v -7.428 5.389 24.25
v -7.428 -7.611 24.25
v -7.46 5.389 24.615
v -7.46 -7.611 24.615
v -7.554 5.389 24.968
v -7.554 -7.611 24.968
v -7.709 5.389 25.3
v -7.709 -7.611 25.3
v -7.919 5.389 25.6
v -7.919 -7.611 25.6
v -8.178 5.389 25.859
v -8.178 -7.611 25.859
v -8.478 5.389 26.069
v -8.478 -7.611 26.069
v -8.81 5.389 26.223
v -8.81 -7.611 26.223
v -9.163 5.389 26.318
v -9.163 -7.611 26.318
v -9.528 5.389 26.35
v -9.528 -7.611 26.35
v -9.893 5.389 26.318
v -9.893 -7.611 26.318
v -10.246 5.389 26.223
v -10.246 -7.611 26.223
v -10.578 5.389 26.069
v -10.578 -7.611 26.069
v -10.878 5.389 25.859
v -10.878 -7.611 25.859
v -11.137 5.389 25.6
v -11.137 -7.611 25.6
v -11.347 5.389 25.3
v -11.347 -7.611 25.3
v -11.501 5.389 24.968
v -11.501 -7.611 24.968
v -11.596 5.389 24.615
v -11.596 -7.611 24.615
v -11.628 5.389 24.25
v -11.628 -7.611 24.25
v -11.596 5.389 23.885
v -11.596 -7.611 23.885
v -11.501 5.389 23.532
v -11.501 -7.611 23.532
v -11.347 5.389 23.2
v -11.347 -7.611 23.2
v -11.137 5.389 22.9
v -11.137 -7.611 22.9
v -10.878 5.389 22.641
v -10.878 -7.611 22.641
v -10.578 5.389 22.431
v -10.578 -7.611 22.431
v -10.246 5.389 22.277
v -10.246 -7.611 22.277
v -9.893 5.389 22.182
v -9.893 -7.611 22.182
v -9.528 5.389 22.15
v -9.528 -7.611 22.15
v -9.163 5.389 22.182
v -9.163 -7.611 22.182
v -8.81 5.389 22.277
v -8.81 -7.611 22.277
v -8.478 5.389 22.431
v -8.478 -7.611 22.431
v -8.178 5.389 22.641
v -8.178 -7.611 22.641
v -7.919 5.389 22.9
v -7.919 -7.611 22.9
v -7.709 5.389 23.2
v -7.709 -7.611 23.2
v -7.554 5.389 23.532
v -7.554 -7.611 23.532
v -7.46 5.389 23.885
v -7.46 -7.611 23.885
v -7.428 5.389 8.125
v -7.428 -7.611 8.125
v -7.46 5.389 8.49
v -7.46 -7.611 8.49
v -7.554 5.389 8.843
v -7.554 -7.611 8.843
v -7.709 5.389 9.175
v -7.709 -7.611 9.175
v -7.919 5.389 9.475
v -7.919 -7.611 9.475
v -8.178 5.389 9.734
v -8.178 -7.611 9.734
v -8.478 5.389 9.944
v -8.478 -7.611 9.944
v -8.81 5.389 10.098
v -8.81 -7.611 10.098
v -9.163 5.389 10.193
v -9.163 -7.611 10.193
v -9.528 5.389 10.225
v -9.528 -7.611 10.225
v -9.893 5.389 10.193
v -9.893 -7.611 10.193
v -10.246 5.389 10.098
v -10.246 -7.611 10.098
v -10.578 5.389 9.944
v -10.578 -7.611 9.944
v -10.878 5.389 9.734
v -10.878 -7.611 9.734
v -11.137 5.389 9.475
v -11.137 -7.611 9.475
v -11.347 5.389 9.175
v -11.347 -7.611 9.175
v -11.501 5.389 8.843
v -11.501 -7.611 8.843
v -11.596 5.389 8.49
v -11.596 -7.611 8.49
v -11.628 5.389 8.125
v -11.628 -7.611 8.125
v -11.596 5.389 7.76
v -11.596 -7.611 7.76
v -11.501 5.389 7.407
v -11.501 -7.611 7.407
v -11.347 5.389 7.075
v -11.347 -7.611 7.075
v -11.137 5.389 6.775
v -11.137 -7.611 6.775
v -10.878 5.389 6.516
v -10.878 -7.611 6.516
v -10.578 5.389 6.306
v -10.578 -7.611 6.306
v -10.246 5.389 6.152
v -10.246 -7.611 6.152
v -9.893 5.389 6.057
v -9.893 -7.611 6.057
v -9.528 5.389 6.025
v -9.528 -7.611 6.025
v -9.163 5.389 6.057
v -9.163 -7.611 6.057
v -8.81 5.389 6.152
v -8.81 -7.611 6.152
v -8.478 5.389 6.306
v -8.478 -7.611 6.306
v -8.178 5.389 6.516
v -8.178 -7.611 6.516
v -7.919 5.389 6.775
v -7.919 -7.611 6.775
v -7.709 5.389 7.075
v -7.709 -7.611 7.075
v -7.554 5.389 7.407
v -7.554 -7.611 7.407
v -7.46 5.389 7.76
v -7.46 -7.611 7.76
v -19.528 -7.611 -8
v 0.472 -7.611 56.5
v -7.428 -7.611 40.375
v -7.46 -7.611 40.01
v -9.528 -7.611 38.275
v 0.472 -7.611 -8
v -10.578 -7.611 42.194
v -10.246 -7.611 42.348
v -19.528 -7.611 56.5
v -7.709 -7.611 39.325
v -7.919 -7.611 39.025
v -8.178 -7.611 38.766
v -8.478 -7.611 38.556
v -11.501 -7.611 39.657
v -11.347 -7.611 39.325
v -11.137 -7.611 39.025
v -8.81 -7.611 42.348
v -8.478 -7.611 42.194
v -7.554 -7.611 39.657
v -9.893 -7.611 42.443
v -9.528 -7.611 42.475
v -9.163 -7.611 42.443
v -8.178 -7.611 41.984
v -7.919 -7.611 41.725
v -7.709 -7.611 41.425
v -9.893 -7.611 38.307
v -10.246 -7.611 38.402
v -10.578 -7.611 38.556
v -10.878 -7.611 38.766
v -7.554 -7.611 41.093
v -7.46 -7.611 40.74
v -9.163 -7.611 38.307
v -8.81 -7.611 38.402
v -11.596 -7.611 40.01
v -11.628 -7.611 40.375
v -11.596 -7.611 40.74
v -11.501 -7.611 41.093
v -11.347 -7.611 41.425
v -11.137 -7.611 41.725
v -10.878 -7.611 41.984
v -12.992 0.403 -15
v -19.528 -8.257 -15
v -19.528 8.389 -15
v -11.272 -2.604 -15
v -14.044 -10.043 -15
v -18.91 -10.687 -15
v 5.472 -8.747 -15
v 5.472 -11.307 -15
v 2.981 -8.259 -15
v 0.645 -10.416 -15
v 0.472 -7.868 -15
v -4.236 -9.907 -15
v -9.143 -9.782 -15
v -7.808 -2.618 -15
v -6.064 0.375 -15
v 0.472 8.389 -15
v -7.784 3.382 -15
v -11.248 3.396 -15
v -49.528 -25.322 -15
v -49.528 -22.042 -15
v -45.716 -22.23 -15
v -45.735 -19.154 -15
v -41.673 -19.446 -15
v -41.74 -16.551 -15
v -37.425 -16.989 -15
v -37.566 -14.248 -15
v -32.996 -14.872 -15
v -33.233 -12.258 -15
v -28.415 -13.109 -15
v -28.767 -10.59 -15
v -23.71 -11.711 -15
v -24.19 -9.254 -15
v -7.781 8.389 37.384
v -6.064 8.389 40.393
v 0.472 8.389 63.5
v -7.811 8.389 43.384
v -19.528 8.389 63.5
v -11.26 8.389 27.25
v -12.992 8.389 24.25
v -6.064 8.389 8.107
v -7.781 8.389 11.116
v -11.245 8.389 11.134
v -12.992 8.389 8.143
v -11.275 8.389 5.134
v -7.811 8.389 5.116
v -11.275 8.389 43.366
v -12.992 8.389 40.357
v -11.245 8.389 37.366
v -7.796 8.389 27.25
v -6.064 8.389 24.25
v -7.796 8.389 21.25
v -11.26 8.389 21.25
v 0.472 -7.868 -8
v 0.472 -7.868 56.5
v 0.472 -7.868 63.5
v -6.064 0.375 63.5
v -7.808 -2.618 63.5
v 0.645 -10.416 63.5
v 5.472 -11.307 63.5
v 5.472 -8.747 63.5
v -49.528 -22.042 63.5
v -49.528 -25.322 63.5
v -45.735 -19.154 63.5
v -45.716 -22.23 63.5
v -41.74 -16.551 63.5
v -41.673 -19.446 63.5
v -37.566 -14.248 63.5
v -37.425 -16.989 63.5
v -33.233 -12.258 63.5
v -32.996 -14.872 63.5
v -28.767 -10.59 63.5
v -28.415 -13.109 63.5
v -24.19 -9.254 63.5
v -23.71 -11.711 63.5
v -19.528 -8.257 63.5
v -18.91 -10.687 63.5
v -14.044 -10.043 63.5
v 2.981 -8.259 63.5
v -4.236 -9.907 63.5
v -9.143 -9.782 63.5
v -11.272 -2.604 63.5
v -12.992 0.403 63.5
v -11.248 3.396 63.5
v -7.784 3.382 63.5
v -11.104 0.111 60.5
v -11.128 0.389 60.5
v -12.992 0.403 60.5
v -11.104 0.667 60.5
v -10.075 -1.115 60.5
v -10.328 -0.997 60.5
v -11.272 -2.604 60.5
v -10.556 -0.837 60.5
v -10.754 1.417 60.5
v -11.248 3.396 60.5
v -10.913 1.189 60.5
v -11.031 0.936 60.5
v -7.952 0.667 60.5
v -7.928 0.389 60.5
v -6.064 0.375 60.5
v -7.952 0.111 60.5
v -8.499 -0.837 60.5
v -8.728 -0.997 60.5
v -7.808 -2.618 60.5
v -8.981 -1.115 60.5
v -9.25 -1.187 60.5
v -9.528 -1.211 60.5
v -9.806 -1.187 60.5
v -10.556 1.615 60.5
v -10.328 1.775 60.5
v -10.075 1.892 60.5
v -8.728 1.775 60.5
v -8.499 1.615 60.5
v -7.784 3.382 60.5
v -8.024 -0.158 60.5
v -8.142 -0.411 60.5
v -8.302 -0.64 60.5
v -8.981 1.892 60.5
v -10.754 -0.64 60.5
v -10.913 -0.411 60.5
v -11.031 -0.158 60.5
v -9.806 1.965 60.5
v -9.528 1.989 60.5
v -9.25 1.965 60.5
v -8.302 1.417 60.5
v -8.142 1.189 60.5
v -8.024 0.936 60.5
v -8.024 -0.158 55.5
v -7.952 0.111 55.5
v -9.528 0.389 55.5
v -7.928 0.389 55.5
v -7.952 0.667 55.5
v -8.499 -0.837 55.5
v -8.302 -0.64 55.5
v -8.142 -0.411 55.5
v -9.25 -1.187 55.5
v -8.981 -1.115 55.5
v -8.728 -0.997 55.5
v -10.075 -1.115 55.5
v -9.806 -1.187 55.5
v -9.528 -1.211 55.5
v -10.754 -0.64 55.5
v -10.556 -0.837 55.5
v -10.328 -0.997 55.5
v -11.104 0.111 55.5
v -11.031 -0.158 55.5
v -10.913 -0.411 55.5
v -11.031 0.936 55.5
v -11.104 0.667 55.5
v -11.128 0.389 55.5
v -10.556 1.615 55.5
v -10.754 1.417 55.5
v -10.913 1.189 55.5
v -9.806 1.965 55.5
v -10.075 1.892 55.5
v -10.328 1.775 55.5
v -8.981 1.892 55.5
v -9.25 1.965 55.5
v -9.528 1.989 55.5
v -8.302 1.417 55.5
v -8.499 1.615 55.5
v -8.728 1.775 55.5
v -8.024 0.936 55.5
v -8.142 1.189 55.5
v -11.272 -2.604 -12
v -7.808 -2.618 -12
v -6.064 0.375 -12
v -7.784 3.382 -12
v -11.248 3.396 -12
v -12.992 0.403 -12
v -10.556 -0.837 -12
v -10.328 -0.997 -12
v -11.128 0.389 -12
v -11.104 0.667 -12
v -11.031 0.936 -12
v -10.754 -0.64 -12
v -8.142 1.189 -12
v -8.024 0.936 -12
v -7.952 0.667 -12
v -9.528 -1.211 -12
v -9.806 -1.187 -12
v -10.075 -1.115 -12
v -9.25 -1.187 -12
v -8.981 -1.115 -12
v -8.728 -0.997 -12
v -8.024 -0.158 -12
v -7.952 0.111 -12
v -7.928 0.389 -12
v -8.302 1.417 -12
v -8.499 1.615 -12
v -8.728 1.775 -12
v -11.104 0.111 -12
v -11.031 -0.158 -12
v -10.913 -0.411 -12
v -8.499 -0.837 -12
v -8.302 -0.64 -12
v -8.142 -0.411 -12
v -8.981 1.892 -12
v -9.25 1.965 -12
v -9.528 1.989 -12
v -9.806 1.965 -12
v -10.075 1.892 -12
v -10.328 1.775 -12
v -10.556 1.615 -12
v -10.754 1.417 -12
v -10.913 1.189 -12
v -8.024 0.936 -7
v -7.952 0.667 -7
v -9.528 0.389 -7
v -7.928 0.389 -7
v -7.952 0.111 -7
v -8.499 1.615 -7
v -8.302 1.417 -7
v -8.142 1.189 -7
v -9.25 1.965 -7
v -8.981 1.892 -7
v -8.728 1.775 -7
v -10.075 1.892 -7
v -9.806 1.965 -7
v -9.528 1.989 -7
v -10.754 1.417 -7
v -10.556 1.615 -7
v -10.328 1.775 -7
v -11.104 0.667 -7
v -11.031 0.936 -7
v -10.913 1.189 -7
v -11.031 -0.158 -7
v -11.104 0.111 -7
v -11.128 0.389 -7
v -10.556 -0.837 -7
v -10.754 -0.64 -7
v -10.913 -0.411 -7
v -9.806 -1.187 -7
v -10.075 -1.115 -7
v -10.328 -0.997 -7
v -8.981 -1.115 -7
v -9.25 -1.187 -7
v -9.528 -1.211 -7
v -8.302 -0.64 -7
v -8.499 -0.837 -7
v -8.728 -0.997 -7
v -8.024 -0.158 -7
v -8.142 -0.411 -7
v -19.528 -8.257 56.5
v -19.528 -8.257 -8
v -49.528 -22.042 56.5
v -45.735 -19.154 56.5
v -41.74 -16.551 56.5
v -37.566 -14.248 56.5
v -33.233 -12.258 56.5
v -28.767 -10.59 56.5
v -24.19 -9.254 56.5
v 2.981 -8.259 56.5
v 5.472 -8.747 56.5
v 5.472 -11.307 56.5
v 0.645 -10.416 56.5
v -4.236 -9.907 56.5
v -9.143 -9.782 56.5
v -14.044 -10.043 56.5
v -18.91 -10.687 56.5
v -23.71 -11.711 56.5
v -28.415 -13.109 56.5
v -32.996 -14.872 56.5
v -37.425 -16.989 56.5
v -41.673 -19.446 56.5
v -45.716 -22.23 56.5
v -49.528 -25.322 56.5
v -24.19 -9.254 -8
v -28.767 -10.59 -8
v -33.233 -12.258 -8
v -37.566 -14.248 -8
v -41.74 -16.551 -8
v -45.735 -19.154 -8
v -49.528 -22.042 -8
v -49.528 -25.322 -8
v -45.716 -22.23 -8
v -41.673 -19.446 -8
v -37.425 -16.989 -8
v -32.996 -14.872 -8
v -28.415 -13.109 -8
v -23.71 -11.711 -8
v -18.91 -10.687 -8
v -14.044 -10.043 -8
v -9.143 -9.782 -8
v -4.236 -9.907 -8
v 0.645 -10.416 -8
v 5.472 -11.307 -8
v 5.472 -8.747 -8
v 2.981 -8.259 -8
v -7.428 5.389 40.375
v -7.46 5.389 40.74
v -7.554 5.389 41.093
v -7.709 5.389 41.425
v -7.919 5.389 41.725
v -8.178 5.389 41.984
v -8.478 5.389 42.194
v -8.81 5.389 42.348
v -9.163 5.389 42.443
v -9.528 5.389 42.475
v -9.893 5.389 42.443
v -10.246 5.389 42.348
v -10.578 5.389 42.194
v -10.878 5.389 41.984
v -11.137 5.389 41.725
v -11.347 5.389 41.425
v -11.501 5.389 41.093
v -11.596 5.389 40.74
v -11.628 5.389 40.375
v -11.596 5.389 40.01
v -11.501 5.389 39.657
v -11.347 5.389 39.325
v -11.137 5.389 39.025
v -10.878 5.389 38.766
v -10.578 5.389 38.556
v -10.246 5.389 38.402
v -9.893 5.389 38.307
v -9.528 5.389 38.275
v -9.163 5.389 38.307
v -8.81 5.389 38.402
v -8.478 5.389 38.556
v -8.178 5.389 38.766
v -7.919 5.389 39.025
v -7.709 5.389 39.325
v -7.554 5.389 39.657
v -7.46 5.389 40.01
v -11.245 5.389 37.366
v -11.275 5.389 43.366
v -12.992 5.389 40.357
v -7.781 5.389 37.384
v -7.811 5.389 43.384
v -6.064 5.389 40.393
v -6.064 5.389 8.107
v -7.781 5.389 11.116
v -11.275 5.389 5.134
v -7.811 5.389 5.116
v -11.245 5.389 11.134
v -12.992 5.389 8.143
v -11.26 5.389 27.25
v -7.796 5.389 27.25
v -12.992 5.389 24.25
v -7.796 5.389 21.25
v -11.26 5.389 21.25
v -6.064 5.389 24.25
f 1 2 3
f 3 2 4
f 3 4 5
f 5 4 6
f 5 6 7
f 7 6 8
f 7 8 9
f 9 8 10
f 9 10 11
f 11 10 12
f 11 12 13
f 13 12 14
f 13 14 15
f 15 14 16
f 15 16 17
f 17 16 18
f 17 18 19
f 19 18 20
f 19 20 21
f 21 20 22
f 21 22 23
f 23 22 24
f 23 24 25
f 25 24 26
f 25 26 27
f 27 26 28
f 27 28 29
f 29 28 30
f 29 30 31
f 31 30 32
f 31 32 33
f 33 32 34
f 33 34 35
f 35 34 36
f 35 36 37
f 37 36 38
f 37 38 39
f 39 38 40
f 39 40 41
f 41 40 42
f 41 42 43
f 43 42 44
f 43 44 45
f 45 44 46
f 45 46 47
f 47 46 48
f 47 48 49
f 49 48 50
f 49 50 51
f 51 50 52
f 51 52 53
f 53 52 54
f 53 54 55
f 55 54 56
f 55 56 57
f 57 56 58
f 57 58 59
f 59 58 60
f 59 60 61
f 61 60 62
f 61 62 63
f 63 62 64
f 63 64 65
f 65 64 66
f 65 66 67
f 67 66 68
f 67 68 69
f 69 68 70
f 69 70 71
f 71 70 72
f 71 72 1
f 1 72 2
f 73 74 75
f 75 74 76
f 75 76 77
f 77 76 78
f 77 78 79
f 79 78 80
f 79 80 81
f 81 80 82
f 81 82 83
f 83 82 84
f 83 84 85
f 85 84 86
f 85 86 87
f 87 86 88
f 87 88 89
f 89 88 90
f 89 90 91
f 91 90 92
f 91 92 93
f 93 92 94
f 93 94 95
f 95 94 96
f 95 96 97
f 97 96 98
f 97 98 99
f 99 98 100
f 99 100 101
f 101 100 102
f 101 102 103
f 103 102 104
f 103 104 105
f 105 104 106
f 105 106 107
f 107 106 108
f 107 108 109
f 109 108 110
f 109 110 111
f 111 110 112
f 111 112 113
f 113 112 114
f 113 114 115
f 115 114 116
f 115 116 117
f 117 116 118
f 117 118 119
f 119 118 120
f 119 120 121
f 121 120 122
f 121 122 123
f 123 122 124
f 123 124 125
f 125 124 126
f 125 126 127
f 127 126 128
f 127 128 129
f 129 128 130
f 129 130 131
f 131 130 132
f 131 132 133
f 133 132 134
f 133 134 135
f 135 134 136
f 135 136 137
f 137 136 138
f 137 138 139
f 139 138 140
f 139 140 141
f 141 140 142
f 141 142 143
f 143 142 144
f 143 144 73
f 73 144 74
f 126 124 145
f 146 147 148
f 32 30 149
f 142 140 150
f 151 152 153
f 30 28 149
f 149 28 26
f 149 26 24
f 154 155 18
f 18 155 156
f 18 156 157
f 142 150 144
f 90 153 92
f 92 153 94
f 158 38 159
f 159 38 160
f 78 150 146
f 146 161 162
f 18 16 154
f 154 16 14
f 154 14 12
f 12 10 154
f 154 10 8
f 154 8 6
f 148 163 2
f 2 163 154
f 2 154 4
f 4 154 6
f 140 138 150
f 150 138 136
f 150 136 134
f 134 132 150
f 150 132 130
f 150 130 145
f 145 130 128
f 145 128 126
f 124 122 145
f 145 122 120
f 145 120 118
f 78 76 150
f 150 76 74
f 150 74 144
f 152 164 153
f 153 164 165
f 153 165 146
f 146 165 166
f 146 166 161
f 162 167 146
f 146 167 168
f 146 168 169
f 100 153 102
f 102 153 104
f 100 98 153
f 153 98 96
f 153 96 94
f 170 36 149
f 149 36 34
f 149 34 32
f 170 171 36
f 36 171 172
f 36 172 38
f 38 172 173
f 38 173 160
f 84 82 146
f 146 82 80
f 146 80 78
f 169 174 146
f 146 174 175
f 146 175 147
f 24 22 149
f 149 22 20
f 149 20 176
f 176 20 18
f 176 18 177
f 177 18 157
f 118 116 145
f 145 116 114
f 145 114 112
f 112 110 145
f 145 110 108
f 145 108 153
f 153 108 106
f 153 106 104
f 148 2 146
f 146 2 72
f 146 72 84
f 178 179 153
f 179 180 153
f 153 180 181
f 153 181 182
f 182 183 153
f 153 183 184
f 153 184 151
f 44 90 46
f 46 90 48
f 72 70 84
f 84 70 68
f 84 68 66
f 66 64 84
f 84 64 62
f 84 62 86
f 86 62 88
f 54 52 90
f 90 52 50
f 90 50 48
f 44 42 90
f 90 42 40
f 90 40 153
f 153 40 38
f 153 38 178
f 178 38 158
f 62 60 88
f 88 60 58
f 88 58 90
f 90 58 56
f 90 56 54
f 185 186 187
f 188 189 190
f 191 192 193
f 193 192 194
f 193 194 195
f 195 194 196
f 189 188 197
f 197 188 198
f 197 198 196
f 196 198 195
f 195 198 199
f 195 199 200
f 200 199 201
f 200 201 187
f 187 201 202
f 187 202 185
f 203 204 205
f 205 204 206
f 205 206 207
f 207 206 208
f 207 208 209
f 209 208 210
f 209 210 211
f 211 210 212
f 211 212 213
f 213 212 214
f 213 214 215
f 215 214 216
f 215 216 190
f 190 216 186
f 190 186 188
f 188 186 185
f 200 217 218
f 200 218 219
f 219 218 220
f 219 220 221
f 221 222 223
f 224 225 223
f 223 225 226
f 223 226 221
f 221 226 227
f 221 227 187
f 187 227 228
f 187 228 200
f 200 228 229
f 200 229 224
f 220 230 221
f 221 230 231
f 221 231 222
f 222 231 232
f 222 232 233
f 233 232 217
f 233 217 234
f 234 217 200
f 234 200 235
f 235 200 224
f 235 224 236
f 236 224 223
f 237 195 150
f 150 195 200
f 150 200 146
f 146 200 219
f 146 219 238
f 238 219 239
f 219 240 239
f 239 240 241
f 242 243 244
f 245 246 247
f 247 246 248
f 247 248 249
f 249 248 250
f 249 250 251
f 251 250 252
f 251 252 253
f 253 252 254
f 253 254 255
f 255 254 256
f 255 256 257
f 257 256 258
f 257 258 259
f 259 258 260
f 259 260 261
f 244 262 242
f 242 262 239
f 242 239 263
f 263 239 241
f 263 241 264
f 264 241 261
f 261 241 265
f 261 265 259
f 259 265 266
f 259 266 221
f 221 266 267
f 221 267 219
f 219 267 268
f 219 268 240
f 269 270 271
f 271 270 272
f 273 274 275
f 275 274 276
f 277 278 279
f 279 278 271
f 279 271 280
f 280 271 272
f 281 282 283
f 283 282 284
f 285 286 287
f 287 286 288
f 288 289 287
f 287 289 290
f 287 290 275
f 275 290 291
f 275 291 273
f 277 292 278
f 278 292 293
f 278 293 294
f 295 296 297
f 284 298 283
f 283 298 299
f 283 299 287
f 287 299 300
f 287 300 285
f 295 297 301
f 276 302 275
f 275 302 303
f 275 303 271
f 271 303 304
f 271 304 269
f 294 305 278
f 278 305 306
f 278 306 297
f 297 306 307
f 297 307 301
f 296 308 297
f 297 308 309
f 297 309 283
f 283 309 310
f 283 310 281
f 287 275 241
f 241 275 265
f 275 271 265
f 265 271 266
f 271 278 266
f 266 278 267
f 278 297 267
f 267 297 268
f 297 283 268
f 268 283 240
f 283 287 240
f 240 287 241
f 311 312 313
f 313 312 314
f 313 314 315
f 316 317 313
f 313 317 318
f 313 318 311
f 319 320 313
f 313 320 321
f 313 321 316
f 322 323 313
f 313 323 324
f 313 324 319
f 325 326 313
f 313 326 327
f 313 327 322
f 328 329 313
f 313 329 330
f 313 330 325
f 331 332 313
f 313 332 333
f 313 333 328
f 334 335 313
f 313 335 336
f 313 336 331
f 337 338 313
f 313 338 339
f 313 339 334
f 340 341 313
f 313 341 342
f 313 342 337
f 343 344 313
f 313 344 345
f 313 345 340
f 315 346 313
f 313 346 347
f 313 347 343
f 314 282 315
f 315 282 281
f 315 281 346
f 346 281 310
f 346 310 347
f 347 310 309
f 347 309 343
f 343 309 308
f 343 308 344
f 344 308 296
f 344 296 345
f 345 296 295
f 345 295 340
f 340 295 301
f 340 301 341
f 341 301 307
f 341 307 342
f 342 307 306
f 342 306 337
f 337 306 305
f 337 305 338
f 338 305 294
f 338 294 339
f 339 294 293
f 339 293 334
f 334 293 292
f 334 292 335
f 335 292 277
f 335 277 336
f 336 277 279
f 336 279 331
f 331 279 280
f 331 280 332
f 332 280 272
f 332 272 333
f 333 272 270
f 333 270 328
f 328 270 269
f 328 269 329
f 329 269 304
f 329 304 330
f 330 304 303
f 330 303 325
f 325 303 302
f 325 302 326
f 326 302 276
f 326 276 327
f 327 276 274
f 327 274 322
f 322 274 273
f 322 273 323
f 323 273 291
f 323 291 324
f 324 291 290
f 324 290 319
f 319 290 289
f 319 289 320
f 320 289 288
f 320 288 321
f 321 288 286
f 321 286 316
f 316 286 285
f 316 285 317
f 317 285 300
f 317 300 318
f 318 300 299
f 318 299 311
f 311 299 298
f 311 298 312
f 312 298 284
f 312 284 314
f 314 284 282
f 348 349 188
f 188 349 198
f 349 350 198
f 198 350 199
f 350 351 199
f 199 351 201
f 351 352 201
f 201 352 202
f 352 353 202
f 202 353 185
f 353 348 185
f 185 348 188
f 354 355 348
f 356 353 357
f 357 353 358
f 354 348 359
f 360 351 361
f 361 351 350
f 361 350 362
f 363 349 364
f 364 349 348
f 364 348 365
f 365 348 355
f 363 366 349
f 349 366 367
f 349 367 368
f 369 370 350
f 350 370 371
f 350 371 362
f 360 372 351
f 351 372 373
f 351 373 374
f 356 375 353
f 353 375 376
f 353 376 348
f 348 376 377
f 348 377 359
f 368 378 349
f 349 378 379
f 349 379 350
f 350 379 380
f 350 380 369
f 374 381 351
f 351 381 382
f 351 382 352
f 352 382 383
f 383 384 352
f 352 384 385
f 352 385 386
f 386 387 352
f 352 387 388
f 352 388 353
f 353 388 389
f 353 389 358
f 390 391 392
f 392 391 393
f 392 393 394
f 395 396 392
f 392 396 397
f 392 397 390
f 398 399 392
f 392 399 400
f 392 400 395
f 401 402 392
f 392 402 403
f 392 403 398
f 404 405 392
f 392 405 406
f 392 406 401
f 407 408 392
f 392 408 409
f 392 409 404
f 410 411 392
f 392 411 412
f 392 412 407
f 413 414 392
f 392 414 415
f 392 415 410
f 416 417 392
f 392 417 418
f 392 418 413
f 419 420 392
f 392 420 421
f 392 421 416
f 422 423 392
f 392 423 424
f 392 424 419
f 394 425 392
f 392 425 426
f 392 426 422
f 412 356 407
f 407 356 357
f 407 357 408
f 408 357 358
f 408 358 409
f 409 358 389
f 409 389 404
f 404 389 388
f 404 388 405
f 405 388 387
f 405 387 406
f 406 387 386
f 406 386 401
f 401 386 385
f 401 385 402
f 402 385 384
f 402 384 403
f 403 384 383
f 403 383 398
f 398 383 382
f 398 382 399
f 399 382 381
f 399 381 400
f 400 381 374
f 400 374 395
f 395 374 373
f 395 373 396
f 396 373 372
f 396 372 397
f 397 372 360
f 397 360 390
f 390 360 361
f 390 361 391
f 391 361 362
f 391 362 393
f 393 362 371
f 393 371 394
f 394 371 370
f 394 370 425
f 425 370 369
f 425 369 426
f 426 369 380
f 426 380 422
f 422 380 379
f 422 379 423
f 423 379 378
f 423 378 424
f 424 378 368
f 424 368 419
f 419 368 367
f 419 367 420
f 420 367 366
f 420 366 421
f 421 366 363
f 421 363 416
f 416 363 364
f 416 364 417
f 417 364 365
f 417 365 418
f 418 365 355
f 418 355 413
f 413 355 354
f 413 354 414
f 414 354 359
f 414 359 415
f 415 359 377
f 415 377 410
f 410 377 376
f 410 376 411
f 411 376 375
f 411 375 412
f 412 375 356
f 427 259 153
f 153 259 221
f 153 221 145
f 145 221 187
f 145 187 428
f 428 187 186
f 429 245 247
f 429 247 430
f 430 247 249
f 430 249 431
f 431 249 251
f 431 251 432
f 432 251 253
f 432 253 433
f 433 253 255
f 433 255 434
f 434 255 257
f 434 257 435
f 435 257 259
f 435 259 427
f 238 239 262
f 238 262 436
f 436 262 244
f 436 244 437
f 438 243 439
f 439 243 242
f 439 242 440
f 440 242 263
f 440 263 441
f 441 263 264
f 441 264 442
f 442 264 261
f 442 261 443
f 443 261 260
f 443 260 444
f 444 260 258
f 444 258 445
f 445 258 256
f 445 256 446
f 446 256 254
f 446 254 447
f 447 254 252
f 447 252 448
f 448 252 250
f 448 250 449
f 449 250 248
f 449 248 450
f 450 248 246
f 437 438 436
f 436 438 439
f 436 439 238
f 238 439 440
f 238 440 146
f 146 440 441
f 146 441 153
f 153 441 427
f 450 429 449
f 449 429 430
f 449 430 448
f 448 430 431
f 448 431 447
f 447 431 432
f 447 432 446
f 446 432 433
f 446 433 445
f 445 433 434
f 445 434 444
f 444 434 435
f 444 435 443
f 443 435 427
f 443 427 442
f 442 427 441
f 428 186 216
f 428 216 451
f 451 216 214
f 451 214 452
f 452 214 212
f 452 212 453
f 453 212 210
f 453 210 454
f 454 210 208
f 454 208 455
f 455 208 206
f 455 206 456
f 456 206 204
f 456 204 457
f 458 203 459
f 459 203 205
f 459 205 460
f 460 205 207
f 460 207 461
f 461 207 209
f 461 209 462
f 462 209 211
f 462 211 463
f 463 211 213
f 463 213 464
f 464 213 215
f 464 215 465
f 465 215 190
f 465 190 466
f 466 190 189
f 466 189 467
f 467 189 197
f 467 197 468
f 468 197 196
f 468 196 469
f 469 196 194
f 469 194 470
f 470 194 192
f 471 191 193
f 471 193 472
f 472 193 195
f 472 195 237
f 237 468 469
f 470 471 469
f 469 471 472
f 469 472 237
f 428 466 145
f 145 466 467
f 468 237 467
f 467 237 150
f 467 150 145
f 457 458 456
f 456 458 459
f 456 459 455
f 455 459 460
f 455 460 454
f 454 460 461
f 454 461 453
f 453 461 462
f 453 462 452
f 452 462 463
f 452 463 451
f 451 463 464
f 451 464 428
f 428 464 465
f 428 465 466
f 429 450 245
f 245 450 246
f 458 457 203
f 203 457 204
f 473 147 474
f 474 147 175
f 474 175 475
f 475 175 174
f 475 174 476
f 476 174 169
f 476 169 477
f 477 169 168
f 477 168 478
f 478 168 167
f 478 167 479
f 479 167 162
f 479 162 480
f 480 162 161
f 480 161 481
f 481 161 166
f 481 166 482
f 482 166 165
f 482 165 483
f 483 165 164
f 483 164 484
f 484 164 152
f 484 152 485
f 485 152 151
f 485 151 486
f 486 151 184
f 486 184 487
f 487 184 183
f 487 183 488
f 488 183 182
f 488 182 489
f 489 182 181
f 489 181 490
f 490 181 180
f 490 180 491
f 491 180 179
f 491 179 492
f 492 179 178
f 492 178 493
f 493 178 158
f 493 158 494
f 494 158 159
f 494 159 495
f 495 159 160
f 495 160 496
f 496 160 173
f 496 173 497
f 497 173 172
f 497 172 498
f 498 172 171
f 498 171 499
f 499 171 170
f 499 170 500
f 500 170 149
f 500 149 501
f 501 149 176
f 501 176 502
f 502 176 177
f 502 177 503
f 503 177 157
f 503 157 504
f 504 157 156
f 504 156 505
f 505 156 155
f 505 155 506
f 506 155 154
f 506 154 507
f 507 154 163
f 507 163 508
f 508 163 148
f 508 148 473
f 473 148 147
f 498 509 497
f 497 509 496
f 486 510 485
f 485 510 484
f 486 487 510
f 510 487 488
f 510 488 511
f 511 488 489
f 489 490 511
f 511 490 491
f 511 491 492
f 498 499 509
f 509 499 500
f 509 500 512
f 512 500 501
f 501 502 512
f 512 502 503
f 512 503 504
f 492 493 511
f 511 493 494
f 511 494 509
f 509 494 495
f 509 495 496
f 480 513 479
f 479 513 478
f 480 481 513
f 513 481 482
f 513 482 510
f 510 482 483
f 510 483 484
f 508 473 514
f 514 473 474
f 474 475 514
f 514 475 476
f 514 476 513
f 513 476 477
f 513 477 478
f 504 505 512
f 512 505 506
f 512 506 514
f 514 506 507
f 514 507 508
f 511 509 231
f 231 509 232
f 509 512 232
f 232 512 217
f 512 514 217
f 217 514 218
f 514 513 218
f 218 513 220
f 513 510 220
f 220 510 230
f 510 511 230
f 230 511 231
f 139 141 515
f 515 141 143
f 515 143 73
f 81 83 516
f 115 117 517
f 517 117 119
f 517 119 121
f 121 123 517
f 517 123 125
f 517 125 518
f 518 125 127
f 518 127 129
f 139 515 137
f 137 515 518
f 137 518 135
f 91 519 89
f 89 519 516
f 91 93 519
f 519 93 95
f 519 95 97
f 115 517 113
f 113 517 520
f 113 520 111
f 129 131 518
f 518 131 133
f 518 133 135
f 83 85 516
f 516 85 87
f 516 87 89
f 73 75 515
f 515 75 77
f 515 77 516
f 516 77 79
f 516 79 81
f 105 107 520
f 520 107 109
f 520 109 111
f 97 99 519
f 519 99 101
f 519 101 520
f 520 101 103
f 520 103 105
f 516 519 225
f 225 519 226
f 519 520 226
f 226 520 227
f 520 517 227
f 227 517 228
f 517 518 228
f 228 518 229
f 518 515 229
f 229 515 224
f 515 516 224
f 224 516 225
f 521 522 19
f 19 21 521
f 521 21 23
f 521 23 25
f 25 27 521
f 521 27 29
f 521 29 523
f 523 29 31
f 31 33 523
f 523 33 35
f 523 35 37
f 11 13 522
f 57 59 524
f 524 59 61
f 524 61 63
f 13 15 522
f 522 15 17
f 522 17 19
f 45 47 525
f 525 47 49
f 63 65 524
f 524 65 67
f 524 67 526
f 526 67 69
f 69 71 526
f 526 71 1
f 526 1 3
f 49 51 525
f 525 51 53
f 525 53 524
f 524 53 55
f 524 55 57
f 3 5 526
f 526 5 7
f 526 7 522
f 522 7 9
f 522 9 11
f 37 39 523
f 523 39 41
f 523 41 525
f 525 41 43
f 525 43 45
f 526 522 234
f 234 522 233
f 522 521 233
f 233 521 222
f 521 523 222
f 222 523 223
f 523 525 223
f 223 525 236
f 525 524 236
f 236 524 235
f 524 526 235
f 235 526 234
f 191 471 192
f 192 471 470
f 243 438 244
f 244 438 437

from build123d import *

# Parameters (mm, degrees)
BOSS_EXTRUDE2_DEPTH = 48.5
BOSS_EXTRUDE3_DEPTH = 18
SKETCH3_R           = 1.6
CUT_EXTRUDE1_DEPTH  = 8
CUT_EXTRUDE3_DEPTH  = 3
SKETCH5_W           = 78.5
SKETCH5_H           = 16
BOSS_EXTRUDE4_DEPTH = 2
BOSS_EXTRUDE5_DEPTH = 7
BOSS_EXTRUDE6_DEPTH = 7
SKETCH10_R          = 2.1
CUT_EXTRUDE4_DEPTH  = 17
CUT_EXTRUDE5_DEPTH  = 3
CUT_EXTRUDE6_DEPTH  = 79.5


with BuildPart() as part:
    # Sketch1 → Boss-Extrude2 (new body)
    with BuildSketch(Plane.XY):
        Polygon((0.472150472, 5.388924764), (0.472150472, 8.388924764), (-17.527849528, 8.388924764), (-17.527849528, -7.611075236), (0.472150472, -7.611075236), (0.472150472, -4.611075236), align=None)
    extrude(amount=BOSS_EXTRUDE2_DEPTH)

    # Sketch2 → Boss-Extrude3 (add)
    with BuildSketch(Plane.ZY.offset(17.527849528)):
        Polygon((48.5, 8.388924764), (62.5, 8.388924764), (63.5, 8.388924764), (63.5, 7.388924764), (63.5, -6.611075236), (63.5, -7.611075236), (62.5, -7.611075236), (48.5, -7.611075236), (48.5, -4.811075236), (48.5, 5.588924764), align=None)
        Polygon((0, -4.811075236), (0, -7.611075236), (-14, -7.611075236), (-15, -7.611075236), (-15, -6.611075236), (-15, 7.388924764), (-15, 8.388924764), (-14, 8.388924764), (0, 8.388924764), (0, 5.588924764), align=None)
    extrude(amount=-BOSS_EXTRUDE3_DEPTH)

    # Sketch3 → Cut-Extrude1 (cut)
    with BuildSketch(Plane.XY.offset(63.5)):
        with Locations((-9.527849528, 0.388924764)):
            Circle(SKETCH3_R)
    cut_extrude1 = extrude(amount=-CUT_EXTRUDE1_DEPTH, mode=Mode.SUBTRACT)

    # Mirror1: Cut-Extrude1 across plane
    add(cut_extrude1.mirror(Plane.XY.offset(24.25)), mode=Mode.SUBTRACT)

    # Sketch4 → Cut-Extrude3 (cut)
    with BuildSketch(Plane.XY.offset(63.5)):
        Polygon((-7.807950928, -2.618058576), (-6.063776267, 0.374908974), (-7.783674867, 3.381892314), (-11.247748128, 3.395908104), (-12.991922789, 0.402940554), (-11.272024189, -2.604042786), align=None)
    cut_extrude3 = extrude(amount=-CUT_EXTRUDE3_DEPTH, mode=Mode.SUBTRACT)

    # Mirror2: Cut-Extrude3 across plane
    add(cut_extrude3.mirror(Plane.XY.offset(24.25)), mode=Mode.SUBTRACT)

    # Sketch5 → Boss-Extrude4 (add)
    with BuildSketch(Plane.ZY.offset(17.527849528)):
        with Locations((24.25, 0.388924764)):
            Rectangle(SKETCH5_W, SKETCH5_H)
    extrude(amount=BOSS_EXTRUDE4_DEPTH)

    # Sketch6 → Boss-Extrude5 (add)
    with BuildSketch(Plane.XY.offset(63.5)):
        with BuildLine():
            Line((-19.527849528, -7.611075236), (-19.527849528, -8.257098609))
            ThreePointArc((-19.527849528, -8.257098609), (-29.816107458, -10.948302934), (-39.527849528, -15.28107317))
            Line((-39.527849528, -15.28107317), (-39.527849528, -18.149551009))
            ThreePointArc((-39.527849528, -18.149551009), (-8.277849528, -9.776138745), (22.972150472, -18.149551009))
            Line((22.972150472, -18.149551009), (22.972150472, -15.28107317))
            ThreePointArc((22.972150472, -15.28107317), (12.062731895, -10.540729559), (0.472150472, -7.867773606))
            Line((0.472150472, -7.867773606), (0.472150472, -7.611075236))
            Line((0.472150472, -7.611075236), (-19.527849528, -7.611075236))
        make_face()
    boss_extrude5 = extrude(amount=-BOSS_EXTRUDE5_DEPTH)

    # Mirror3: Boss-Extrude5 across plane
    add(boss_extrude5.mirror(Plane.XY.offset(24.25)))

    # Sketch7 → Boss-Extrude6 (add)
    with BuildSketch(Plane.XY.offset(63.5)):
        with BuildLine():
            Line((22.972150472, -18.149551009), (22.972150472, -15.28107317))
            ThreePointArc((22.972150472, -15.28107317), (28.129444831, -18.429050454), (32.972150472, -22.042310502))
            Line((32.972150472, -22.042310502), (32.972150472, -25.322038818))
            ThreePointArc((32.972150472, -25.322038818), (28.149113636, -21.489069971), (22.972150472, -18.149551009))
        make_face()
        with BuildLine():
            Line((-39.527849528, -15.28107317), (-39.527849528, -18.149551009))
            ThreePointArc((-39.527849528, -18.149551009), (-44.704812692, -21.489069971), (-49.527849528, -25.322038818))
            Line((-49.527849528, -25.322038818), (-49.527849528, -22.042310502))
            ThreePointArc((-49.527849528, -22.042310502), (-44.685143887, -18.429050454), (-39.527849528, -15.28107317))
        make_face()
    boss_extrude6 = extrude(amount=-BOSS_EXTRUDE6_DEPTH)

    # Mirror4: Boss-Extrude6 across plane
    add(boss_extrude6.mirror(Plane.XY.offset(24.25)))

    # Sketch10 → Cut-Extrude4 (cut, through all)
    with BuildSketch(Plane.XZ.offset(7.611075236)):
        with Locations((-9.527849528, 40.375)):
            Circle(SKETCH10_R)
        with Locations((-9.527849528, 8.125)):
            Circle(SKETCH10_R)
        with Locations((-9.527849528, 24.25)):
            Circle(SKETCH10_R)
    extrude(amount=-CUT_EXTRUDE4_DEPTH, mode=Mode.SUBTRACT)

    # Sketch11 → Cut-Extrude5 (cut)
    with BuildSketch(Plane(origin=(0, 8.388924764, 0), x_dir=(1, 0, 0), z_dir=(0, 1, 0))):
        Polygon((-7.780505993, -11.116118615), (-6.063793054, -8.107315417), (-7.811136589, -5.116196802), (-11.275193063, -5.133881385), (-12.991906002, -8.142684583), (-11.244562467, -11.133803198), align=None)
        Polygon((-11.244562467, -37.366196802), (-7.780505993, -37.383881385), (-6.063793054, -40.392684583), (-7.811136589, -43.383803198), (-11.275193063, -43.366118615), (-12.991906002, -40.357315417), align=None)
        Polygon((-6.063747913, -24.25), (-7.79579872, -21.25), (-11.259900336, -21.25), (-12.991951143, -24.25), (-11.259900336, -27.25), (-7.79579872, -27.25), align=None)
    extrude(amount=-CUT_EXTRUDE5_DEPTH, mode=Mode.SUBTRACT)

    # Sketch12 → Cut-Extrude6 (cut, through all)
    with BuildSketch(Plane.XY.offset(63.5)):
        with BuildLine():
            Line((5.472150472, -8.747109948), (5.472150472, -11.307396754))
            ThreePointArc((5.472150472, -11.307396754), (20.100884553, -16.590436344), (32.972150472, -25.322038818))
            Line((32.972150472, -25.322038818), (32.972150472, -22.042310502))
            ThreePointArc((32.972150472, -22.042310502), (20.014209242, -13.756403523), (5.472150472, -8.747109948))
        make_face()
    extrude(amount=-CUT_EXTRUDE6_DEPTH, mode=Mode.SUBTRACT)


solid = part.part
